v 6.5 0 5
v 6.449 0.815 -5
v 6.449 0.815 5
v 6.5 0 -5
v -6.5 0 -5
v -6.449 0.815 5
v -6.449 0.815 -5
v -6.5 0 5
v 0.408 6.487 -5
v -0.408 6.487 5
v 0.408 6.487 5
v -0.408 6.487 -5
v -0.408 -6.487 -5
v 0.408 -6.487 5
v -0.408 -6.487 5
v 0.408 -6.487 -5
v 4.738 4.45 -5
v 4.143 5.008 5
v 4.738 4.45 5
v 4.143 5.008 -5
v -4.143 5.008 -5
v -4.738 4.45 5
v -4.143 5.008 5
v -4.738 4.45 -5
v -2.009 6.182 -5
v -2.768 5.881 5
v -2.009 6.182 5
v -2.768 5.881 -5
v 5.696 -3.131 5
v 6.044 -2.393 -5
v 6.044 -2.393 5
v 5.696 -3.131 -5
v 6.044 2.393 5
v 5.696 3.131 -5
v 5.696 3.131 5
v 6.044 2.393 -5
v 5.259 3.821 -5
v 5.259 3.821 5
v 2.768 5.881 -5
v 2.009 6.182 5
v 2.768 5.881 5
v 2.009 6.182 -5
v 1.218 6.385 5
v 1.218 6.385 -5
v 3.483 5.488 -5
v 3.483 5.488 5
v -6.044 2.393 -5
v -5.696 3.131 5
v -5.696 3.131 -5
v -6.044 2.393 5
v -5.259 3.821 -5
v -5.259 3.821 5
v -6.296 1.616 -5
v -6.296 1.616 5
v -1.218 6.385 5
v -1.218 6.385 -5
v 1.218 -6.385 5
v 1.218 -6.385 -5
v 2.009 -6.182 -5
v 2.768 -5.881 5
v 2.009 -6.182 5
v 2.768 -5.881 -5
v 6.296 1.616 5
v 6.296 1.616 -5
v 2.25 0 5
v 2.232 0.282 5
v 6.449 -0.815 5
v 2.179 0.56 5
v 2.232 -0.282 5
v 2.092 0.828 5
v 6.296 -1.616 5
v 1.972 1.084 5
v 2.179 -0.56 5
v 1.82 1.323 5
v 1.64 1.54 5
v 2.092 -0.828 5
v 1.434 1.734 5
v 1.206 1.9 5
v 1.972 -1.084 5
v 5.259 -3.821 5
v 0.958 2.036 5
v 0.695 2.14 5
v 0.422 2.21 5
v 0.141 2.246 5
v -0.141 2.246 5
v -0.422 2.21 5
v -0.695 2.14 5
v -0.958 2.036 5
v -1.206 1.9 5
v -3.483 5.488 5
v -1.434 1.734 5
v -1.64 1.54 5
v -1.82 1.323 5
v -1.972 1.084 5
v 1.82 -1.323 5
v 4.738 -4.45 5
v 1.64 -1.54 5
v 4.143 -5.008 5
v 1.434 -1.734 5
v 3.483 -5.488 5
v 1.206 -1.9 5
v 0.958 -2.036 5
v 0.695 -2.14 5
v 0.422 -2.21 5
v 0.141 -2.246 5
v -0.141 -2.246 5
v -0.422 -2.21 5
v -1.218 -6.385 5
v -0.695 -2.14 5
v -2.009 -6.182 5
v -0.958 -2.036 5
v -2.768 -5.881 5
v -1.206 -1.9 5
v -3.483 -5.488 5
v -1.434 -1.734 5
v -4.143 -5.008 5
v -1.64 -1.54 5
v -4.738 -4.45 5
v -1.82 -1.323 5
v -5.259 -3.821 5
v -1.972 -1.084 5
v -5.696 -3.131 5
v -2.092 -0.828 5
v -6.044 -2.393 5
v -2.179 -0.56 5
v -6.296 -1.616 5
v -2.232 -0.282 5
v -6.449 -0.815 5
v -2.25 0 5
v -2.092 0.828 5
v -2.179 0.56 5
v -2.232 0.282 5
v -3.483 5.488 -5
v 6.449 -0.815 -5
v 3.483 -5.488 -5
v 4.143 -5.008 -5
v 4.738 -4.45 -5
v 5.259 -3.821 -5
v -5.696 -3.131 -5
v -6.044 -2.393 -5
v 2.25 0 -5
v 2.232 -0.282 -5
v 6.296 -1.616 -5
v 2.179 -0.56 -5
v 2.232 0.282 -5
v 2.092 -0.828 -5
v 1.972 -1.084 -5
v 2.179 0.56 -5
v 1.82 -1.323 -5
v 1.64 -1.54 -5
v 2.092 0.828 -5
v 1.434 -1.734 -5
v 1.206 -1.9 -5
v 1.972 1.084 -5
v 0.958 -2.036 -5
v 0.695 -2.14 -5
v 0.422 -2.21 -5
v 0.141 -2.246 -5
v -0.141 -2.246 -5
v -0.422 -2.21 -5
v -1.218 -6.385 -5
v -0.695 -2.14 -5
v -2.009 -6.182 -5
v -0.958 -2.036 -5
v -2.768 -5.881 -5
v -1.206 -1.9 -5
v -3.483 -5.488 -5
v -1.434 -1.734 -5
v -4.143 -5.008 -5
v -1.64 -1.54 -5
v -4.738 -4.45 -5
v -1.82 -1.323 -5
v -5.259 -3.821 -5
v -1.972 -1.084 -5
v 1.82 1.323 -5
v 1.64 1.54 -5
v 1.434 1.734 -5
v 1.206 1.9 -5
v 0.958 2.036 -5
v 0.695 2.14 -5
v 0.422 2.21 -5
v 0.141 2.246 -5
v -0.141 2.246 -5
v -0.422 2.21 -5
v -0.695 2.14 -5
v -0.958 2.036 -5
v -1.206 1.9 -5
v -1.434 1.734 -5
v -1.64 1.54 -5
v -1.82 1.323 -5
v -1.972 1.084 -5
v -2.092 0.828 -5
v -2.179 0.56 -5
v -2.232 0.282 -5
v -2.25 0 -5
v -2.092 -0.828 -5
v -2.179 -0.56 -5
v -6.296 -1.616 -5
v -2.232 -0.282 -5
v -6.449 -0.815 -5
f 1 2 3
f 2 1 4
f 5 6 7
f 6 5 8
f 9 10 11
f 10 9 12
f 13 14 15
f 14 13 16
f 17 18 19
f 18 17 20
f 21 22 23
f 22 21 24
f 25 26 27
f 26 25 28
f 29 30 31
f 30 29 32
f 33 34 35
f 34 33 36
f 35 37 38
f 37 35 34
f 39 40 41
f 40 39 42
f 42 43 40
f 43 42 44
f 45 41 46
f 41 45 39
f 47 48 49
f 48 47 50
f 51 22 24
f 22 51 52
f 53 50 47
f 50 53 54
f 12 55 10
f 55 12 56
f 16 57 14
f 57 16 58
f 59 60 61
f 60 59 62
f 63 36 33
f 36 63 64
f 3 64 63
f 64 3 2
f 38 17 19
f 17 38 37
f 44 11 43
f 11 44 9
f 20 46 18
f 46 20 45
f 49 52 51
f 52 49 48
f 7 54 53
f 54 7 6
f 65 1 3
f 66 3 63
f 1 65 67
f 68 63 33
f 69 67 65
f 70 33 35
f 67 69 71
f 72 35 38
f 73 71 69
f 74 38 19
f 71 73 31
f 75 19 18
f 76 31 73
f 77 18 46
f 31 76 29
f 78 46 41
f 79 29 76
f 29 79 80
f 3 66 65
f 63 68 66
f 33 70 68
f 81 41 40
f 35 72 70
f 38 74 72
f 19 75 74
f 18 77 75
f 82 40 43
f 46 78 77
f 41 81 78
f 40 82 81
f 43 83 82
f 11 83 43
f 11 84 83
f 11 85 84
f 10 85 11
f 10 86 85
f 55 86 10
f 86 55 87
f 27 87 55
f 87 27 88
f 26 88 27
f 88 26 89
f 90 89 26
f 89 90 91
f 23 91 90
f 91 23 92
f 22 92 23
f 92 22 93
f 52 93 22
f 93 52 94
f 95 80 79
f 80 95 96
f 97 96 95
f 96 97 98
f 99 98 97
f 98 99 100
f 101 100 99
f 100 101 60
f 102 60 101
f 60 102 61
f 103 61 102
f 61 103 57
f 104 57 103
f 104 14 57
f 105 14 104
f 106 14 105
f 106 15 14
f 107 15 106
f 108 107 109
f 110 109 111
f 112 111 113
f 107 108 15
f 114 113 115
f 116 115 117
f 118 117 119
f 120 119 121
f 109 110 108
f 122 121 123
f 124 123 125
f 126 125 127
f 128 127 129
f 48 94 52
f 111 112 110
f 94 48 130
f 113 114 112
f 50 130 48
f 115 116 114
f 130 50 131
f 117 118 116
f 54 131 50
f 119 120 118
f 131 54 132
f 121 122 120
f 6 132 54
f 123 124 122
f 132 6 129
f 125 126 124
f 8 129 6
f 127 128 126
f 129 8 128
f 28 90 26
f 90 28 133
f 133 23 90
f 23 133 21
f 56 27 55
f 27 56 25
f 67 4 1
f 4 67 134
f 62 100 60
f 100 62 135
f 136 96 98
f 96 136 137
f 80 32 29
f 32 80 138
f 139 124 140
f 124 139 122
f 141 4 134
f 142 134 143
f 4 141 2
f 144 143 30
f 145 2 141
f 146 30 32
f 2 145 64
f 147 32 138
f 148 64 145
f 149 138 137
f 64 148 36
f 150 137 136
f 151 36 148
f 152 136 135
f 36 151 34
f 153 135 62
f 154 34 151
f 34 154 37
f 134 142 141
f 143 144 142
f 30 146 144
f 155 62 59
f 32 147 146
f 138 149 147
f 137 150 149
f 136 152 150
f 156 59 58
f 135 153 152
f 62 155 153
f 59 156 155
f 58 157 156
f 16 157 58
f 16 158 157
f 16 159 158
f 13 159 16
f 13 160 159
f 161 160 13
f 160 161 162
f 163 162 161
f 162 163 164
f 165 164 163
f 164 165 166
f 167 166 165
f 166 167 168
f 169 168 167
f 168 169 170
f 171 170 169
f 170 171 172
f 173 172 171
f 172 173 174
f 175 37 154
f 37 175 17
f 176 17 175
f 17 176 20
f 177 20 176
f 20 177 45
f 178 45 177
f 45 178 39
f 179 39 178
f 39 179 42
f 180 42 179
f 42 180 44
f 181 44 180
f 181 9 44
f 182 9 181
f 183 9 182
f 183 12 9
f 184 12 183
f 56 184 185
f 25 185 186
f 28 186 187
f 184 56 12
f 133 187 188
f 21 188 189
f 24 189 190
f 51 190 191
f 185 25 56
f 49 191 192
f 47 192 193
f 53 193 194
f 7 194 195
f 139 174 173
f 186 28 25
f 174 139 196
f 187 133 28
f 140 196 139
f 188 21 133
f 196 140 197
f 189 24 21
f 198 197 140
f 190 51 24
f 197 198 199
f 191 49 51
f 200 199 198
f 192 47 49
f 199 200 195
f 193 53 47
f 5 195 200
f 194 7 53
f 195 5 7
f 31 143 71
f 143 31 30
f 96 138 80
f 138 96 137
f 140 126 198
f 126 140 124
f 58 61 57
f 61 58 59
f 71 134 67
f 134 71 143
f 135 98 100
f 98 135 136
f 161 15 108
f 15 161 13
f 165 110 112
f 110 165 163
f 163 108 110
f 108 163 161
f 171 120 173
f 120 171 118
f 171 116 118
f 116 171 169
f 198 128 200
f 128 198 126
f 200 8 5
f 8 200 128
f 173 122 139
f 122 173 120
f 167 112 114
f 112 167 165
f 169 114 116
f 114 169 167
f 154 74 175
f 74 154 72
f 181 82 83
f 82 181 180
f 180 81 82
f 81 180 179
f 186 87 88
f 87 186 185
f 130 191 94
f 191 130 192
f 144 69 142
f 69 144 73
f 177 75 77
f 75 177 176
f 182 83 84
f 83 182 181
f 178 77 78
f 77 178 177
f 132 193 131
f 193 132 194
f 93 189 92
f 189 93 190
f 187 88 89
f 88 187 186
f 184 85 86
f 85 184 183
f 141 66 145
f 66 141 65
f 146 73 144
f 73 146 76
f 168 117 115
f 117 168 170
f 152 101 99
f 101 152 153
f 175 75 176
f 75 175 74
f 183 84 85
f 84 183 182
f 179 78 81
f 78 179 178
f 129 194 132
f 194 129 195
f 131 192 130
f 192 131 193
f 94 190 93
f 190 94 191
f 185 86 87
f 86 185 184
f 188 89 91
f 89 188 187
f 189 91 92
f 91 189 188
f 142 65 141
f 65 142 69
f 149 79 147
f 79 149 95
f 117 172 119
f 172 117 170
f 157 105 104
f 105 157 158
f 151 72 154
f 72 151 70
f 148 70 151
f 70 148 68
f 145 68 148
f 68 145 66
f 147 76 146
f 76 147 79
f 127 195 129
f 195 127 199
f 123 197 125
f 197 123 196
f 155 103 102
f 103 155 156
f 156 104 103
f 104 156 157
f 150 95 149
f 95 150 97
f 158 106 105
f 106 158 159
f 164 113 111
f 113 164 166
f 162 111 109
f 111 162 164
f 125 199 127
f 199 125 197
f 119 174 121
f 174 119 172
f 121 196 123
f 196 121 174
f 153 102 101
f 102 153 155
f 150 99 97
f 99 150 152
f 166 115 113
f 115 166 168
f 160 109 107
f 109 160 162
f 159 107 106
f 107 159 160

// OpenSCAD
$fn = 50;


difference() {
	union() {
		translate(v = [0, 0, -5.0000000000]) {
			cylinder(h = 10, r = 6.5000000000);
		}
	}
	union() {
		translate(v = [0, 0, -100.0000000000]) {
			cylinder(h = 200, r = 2.2500000000);
		}
	}
}
